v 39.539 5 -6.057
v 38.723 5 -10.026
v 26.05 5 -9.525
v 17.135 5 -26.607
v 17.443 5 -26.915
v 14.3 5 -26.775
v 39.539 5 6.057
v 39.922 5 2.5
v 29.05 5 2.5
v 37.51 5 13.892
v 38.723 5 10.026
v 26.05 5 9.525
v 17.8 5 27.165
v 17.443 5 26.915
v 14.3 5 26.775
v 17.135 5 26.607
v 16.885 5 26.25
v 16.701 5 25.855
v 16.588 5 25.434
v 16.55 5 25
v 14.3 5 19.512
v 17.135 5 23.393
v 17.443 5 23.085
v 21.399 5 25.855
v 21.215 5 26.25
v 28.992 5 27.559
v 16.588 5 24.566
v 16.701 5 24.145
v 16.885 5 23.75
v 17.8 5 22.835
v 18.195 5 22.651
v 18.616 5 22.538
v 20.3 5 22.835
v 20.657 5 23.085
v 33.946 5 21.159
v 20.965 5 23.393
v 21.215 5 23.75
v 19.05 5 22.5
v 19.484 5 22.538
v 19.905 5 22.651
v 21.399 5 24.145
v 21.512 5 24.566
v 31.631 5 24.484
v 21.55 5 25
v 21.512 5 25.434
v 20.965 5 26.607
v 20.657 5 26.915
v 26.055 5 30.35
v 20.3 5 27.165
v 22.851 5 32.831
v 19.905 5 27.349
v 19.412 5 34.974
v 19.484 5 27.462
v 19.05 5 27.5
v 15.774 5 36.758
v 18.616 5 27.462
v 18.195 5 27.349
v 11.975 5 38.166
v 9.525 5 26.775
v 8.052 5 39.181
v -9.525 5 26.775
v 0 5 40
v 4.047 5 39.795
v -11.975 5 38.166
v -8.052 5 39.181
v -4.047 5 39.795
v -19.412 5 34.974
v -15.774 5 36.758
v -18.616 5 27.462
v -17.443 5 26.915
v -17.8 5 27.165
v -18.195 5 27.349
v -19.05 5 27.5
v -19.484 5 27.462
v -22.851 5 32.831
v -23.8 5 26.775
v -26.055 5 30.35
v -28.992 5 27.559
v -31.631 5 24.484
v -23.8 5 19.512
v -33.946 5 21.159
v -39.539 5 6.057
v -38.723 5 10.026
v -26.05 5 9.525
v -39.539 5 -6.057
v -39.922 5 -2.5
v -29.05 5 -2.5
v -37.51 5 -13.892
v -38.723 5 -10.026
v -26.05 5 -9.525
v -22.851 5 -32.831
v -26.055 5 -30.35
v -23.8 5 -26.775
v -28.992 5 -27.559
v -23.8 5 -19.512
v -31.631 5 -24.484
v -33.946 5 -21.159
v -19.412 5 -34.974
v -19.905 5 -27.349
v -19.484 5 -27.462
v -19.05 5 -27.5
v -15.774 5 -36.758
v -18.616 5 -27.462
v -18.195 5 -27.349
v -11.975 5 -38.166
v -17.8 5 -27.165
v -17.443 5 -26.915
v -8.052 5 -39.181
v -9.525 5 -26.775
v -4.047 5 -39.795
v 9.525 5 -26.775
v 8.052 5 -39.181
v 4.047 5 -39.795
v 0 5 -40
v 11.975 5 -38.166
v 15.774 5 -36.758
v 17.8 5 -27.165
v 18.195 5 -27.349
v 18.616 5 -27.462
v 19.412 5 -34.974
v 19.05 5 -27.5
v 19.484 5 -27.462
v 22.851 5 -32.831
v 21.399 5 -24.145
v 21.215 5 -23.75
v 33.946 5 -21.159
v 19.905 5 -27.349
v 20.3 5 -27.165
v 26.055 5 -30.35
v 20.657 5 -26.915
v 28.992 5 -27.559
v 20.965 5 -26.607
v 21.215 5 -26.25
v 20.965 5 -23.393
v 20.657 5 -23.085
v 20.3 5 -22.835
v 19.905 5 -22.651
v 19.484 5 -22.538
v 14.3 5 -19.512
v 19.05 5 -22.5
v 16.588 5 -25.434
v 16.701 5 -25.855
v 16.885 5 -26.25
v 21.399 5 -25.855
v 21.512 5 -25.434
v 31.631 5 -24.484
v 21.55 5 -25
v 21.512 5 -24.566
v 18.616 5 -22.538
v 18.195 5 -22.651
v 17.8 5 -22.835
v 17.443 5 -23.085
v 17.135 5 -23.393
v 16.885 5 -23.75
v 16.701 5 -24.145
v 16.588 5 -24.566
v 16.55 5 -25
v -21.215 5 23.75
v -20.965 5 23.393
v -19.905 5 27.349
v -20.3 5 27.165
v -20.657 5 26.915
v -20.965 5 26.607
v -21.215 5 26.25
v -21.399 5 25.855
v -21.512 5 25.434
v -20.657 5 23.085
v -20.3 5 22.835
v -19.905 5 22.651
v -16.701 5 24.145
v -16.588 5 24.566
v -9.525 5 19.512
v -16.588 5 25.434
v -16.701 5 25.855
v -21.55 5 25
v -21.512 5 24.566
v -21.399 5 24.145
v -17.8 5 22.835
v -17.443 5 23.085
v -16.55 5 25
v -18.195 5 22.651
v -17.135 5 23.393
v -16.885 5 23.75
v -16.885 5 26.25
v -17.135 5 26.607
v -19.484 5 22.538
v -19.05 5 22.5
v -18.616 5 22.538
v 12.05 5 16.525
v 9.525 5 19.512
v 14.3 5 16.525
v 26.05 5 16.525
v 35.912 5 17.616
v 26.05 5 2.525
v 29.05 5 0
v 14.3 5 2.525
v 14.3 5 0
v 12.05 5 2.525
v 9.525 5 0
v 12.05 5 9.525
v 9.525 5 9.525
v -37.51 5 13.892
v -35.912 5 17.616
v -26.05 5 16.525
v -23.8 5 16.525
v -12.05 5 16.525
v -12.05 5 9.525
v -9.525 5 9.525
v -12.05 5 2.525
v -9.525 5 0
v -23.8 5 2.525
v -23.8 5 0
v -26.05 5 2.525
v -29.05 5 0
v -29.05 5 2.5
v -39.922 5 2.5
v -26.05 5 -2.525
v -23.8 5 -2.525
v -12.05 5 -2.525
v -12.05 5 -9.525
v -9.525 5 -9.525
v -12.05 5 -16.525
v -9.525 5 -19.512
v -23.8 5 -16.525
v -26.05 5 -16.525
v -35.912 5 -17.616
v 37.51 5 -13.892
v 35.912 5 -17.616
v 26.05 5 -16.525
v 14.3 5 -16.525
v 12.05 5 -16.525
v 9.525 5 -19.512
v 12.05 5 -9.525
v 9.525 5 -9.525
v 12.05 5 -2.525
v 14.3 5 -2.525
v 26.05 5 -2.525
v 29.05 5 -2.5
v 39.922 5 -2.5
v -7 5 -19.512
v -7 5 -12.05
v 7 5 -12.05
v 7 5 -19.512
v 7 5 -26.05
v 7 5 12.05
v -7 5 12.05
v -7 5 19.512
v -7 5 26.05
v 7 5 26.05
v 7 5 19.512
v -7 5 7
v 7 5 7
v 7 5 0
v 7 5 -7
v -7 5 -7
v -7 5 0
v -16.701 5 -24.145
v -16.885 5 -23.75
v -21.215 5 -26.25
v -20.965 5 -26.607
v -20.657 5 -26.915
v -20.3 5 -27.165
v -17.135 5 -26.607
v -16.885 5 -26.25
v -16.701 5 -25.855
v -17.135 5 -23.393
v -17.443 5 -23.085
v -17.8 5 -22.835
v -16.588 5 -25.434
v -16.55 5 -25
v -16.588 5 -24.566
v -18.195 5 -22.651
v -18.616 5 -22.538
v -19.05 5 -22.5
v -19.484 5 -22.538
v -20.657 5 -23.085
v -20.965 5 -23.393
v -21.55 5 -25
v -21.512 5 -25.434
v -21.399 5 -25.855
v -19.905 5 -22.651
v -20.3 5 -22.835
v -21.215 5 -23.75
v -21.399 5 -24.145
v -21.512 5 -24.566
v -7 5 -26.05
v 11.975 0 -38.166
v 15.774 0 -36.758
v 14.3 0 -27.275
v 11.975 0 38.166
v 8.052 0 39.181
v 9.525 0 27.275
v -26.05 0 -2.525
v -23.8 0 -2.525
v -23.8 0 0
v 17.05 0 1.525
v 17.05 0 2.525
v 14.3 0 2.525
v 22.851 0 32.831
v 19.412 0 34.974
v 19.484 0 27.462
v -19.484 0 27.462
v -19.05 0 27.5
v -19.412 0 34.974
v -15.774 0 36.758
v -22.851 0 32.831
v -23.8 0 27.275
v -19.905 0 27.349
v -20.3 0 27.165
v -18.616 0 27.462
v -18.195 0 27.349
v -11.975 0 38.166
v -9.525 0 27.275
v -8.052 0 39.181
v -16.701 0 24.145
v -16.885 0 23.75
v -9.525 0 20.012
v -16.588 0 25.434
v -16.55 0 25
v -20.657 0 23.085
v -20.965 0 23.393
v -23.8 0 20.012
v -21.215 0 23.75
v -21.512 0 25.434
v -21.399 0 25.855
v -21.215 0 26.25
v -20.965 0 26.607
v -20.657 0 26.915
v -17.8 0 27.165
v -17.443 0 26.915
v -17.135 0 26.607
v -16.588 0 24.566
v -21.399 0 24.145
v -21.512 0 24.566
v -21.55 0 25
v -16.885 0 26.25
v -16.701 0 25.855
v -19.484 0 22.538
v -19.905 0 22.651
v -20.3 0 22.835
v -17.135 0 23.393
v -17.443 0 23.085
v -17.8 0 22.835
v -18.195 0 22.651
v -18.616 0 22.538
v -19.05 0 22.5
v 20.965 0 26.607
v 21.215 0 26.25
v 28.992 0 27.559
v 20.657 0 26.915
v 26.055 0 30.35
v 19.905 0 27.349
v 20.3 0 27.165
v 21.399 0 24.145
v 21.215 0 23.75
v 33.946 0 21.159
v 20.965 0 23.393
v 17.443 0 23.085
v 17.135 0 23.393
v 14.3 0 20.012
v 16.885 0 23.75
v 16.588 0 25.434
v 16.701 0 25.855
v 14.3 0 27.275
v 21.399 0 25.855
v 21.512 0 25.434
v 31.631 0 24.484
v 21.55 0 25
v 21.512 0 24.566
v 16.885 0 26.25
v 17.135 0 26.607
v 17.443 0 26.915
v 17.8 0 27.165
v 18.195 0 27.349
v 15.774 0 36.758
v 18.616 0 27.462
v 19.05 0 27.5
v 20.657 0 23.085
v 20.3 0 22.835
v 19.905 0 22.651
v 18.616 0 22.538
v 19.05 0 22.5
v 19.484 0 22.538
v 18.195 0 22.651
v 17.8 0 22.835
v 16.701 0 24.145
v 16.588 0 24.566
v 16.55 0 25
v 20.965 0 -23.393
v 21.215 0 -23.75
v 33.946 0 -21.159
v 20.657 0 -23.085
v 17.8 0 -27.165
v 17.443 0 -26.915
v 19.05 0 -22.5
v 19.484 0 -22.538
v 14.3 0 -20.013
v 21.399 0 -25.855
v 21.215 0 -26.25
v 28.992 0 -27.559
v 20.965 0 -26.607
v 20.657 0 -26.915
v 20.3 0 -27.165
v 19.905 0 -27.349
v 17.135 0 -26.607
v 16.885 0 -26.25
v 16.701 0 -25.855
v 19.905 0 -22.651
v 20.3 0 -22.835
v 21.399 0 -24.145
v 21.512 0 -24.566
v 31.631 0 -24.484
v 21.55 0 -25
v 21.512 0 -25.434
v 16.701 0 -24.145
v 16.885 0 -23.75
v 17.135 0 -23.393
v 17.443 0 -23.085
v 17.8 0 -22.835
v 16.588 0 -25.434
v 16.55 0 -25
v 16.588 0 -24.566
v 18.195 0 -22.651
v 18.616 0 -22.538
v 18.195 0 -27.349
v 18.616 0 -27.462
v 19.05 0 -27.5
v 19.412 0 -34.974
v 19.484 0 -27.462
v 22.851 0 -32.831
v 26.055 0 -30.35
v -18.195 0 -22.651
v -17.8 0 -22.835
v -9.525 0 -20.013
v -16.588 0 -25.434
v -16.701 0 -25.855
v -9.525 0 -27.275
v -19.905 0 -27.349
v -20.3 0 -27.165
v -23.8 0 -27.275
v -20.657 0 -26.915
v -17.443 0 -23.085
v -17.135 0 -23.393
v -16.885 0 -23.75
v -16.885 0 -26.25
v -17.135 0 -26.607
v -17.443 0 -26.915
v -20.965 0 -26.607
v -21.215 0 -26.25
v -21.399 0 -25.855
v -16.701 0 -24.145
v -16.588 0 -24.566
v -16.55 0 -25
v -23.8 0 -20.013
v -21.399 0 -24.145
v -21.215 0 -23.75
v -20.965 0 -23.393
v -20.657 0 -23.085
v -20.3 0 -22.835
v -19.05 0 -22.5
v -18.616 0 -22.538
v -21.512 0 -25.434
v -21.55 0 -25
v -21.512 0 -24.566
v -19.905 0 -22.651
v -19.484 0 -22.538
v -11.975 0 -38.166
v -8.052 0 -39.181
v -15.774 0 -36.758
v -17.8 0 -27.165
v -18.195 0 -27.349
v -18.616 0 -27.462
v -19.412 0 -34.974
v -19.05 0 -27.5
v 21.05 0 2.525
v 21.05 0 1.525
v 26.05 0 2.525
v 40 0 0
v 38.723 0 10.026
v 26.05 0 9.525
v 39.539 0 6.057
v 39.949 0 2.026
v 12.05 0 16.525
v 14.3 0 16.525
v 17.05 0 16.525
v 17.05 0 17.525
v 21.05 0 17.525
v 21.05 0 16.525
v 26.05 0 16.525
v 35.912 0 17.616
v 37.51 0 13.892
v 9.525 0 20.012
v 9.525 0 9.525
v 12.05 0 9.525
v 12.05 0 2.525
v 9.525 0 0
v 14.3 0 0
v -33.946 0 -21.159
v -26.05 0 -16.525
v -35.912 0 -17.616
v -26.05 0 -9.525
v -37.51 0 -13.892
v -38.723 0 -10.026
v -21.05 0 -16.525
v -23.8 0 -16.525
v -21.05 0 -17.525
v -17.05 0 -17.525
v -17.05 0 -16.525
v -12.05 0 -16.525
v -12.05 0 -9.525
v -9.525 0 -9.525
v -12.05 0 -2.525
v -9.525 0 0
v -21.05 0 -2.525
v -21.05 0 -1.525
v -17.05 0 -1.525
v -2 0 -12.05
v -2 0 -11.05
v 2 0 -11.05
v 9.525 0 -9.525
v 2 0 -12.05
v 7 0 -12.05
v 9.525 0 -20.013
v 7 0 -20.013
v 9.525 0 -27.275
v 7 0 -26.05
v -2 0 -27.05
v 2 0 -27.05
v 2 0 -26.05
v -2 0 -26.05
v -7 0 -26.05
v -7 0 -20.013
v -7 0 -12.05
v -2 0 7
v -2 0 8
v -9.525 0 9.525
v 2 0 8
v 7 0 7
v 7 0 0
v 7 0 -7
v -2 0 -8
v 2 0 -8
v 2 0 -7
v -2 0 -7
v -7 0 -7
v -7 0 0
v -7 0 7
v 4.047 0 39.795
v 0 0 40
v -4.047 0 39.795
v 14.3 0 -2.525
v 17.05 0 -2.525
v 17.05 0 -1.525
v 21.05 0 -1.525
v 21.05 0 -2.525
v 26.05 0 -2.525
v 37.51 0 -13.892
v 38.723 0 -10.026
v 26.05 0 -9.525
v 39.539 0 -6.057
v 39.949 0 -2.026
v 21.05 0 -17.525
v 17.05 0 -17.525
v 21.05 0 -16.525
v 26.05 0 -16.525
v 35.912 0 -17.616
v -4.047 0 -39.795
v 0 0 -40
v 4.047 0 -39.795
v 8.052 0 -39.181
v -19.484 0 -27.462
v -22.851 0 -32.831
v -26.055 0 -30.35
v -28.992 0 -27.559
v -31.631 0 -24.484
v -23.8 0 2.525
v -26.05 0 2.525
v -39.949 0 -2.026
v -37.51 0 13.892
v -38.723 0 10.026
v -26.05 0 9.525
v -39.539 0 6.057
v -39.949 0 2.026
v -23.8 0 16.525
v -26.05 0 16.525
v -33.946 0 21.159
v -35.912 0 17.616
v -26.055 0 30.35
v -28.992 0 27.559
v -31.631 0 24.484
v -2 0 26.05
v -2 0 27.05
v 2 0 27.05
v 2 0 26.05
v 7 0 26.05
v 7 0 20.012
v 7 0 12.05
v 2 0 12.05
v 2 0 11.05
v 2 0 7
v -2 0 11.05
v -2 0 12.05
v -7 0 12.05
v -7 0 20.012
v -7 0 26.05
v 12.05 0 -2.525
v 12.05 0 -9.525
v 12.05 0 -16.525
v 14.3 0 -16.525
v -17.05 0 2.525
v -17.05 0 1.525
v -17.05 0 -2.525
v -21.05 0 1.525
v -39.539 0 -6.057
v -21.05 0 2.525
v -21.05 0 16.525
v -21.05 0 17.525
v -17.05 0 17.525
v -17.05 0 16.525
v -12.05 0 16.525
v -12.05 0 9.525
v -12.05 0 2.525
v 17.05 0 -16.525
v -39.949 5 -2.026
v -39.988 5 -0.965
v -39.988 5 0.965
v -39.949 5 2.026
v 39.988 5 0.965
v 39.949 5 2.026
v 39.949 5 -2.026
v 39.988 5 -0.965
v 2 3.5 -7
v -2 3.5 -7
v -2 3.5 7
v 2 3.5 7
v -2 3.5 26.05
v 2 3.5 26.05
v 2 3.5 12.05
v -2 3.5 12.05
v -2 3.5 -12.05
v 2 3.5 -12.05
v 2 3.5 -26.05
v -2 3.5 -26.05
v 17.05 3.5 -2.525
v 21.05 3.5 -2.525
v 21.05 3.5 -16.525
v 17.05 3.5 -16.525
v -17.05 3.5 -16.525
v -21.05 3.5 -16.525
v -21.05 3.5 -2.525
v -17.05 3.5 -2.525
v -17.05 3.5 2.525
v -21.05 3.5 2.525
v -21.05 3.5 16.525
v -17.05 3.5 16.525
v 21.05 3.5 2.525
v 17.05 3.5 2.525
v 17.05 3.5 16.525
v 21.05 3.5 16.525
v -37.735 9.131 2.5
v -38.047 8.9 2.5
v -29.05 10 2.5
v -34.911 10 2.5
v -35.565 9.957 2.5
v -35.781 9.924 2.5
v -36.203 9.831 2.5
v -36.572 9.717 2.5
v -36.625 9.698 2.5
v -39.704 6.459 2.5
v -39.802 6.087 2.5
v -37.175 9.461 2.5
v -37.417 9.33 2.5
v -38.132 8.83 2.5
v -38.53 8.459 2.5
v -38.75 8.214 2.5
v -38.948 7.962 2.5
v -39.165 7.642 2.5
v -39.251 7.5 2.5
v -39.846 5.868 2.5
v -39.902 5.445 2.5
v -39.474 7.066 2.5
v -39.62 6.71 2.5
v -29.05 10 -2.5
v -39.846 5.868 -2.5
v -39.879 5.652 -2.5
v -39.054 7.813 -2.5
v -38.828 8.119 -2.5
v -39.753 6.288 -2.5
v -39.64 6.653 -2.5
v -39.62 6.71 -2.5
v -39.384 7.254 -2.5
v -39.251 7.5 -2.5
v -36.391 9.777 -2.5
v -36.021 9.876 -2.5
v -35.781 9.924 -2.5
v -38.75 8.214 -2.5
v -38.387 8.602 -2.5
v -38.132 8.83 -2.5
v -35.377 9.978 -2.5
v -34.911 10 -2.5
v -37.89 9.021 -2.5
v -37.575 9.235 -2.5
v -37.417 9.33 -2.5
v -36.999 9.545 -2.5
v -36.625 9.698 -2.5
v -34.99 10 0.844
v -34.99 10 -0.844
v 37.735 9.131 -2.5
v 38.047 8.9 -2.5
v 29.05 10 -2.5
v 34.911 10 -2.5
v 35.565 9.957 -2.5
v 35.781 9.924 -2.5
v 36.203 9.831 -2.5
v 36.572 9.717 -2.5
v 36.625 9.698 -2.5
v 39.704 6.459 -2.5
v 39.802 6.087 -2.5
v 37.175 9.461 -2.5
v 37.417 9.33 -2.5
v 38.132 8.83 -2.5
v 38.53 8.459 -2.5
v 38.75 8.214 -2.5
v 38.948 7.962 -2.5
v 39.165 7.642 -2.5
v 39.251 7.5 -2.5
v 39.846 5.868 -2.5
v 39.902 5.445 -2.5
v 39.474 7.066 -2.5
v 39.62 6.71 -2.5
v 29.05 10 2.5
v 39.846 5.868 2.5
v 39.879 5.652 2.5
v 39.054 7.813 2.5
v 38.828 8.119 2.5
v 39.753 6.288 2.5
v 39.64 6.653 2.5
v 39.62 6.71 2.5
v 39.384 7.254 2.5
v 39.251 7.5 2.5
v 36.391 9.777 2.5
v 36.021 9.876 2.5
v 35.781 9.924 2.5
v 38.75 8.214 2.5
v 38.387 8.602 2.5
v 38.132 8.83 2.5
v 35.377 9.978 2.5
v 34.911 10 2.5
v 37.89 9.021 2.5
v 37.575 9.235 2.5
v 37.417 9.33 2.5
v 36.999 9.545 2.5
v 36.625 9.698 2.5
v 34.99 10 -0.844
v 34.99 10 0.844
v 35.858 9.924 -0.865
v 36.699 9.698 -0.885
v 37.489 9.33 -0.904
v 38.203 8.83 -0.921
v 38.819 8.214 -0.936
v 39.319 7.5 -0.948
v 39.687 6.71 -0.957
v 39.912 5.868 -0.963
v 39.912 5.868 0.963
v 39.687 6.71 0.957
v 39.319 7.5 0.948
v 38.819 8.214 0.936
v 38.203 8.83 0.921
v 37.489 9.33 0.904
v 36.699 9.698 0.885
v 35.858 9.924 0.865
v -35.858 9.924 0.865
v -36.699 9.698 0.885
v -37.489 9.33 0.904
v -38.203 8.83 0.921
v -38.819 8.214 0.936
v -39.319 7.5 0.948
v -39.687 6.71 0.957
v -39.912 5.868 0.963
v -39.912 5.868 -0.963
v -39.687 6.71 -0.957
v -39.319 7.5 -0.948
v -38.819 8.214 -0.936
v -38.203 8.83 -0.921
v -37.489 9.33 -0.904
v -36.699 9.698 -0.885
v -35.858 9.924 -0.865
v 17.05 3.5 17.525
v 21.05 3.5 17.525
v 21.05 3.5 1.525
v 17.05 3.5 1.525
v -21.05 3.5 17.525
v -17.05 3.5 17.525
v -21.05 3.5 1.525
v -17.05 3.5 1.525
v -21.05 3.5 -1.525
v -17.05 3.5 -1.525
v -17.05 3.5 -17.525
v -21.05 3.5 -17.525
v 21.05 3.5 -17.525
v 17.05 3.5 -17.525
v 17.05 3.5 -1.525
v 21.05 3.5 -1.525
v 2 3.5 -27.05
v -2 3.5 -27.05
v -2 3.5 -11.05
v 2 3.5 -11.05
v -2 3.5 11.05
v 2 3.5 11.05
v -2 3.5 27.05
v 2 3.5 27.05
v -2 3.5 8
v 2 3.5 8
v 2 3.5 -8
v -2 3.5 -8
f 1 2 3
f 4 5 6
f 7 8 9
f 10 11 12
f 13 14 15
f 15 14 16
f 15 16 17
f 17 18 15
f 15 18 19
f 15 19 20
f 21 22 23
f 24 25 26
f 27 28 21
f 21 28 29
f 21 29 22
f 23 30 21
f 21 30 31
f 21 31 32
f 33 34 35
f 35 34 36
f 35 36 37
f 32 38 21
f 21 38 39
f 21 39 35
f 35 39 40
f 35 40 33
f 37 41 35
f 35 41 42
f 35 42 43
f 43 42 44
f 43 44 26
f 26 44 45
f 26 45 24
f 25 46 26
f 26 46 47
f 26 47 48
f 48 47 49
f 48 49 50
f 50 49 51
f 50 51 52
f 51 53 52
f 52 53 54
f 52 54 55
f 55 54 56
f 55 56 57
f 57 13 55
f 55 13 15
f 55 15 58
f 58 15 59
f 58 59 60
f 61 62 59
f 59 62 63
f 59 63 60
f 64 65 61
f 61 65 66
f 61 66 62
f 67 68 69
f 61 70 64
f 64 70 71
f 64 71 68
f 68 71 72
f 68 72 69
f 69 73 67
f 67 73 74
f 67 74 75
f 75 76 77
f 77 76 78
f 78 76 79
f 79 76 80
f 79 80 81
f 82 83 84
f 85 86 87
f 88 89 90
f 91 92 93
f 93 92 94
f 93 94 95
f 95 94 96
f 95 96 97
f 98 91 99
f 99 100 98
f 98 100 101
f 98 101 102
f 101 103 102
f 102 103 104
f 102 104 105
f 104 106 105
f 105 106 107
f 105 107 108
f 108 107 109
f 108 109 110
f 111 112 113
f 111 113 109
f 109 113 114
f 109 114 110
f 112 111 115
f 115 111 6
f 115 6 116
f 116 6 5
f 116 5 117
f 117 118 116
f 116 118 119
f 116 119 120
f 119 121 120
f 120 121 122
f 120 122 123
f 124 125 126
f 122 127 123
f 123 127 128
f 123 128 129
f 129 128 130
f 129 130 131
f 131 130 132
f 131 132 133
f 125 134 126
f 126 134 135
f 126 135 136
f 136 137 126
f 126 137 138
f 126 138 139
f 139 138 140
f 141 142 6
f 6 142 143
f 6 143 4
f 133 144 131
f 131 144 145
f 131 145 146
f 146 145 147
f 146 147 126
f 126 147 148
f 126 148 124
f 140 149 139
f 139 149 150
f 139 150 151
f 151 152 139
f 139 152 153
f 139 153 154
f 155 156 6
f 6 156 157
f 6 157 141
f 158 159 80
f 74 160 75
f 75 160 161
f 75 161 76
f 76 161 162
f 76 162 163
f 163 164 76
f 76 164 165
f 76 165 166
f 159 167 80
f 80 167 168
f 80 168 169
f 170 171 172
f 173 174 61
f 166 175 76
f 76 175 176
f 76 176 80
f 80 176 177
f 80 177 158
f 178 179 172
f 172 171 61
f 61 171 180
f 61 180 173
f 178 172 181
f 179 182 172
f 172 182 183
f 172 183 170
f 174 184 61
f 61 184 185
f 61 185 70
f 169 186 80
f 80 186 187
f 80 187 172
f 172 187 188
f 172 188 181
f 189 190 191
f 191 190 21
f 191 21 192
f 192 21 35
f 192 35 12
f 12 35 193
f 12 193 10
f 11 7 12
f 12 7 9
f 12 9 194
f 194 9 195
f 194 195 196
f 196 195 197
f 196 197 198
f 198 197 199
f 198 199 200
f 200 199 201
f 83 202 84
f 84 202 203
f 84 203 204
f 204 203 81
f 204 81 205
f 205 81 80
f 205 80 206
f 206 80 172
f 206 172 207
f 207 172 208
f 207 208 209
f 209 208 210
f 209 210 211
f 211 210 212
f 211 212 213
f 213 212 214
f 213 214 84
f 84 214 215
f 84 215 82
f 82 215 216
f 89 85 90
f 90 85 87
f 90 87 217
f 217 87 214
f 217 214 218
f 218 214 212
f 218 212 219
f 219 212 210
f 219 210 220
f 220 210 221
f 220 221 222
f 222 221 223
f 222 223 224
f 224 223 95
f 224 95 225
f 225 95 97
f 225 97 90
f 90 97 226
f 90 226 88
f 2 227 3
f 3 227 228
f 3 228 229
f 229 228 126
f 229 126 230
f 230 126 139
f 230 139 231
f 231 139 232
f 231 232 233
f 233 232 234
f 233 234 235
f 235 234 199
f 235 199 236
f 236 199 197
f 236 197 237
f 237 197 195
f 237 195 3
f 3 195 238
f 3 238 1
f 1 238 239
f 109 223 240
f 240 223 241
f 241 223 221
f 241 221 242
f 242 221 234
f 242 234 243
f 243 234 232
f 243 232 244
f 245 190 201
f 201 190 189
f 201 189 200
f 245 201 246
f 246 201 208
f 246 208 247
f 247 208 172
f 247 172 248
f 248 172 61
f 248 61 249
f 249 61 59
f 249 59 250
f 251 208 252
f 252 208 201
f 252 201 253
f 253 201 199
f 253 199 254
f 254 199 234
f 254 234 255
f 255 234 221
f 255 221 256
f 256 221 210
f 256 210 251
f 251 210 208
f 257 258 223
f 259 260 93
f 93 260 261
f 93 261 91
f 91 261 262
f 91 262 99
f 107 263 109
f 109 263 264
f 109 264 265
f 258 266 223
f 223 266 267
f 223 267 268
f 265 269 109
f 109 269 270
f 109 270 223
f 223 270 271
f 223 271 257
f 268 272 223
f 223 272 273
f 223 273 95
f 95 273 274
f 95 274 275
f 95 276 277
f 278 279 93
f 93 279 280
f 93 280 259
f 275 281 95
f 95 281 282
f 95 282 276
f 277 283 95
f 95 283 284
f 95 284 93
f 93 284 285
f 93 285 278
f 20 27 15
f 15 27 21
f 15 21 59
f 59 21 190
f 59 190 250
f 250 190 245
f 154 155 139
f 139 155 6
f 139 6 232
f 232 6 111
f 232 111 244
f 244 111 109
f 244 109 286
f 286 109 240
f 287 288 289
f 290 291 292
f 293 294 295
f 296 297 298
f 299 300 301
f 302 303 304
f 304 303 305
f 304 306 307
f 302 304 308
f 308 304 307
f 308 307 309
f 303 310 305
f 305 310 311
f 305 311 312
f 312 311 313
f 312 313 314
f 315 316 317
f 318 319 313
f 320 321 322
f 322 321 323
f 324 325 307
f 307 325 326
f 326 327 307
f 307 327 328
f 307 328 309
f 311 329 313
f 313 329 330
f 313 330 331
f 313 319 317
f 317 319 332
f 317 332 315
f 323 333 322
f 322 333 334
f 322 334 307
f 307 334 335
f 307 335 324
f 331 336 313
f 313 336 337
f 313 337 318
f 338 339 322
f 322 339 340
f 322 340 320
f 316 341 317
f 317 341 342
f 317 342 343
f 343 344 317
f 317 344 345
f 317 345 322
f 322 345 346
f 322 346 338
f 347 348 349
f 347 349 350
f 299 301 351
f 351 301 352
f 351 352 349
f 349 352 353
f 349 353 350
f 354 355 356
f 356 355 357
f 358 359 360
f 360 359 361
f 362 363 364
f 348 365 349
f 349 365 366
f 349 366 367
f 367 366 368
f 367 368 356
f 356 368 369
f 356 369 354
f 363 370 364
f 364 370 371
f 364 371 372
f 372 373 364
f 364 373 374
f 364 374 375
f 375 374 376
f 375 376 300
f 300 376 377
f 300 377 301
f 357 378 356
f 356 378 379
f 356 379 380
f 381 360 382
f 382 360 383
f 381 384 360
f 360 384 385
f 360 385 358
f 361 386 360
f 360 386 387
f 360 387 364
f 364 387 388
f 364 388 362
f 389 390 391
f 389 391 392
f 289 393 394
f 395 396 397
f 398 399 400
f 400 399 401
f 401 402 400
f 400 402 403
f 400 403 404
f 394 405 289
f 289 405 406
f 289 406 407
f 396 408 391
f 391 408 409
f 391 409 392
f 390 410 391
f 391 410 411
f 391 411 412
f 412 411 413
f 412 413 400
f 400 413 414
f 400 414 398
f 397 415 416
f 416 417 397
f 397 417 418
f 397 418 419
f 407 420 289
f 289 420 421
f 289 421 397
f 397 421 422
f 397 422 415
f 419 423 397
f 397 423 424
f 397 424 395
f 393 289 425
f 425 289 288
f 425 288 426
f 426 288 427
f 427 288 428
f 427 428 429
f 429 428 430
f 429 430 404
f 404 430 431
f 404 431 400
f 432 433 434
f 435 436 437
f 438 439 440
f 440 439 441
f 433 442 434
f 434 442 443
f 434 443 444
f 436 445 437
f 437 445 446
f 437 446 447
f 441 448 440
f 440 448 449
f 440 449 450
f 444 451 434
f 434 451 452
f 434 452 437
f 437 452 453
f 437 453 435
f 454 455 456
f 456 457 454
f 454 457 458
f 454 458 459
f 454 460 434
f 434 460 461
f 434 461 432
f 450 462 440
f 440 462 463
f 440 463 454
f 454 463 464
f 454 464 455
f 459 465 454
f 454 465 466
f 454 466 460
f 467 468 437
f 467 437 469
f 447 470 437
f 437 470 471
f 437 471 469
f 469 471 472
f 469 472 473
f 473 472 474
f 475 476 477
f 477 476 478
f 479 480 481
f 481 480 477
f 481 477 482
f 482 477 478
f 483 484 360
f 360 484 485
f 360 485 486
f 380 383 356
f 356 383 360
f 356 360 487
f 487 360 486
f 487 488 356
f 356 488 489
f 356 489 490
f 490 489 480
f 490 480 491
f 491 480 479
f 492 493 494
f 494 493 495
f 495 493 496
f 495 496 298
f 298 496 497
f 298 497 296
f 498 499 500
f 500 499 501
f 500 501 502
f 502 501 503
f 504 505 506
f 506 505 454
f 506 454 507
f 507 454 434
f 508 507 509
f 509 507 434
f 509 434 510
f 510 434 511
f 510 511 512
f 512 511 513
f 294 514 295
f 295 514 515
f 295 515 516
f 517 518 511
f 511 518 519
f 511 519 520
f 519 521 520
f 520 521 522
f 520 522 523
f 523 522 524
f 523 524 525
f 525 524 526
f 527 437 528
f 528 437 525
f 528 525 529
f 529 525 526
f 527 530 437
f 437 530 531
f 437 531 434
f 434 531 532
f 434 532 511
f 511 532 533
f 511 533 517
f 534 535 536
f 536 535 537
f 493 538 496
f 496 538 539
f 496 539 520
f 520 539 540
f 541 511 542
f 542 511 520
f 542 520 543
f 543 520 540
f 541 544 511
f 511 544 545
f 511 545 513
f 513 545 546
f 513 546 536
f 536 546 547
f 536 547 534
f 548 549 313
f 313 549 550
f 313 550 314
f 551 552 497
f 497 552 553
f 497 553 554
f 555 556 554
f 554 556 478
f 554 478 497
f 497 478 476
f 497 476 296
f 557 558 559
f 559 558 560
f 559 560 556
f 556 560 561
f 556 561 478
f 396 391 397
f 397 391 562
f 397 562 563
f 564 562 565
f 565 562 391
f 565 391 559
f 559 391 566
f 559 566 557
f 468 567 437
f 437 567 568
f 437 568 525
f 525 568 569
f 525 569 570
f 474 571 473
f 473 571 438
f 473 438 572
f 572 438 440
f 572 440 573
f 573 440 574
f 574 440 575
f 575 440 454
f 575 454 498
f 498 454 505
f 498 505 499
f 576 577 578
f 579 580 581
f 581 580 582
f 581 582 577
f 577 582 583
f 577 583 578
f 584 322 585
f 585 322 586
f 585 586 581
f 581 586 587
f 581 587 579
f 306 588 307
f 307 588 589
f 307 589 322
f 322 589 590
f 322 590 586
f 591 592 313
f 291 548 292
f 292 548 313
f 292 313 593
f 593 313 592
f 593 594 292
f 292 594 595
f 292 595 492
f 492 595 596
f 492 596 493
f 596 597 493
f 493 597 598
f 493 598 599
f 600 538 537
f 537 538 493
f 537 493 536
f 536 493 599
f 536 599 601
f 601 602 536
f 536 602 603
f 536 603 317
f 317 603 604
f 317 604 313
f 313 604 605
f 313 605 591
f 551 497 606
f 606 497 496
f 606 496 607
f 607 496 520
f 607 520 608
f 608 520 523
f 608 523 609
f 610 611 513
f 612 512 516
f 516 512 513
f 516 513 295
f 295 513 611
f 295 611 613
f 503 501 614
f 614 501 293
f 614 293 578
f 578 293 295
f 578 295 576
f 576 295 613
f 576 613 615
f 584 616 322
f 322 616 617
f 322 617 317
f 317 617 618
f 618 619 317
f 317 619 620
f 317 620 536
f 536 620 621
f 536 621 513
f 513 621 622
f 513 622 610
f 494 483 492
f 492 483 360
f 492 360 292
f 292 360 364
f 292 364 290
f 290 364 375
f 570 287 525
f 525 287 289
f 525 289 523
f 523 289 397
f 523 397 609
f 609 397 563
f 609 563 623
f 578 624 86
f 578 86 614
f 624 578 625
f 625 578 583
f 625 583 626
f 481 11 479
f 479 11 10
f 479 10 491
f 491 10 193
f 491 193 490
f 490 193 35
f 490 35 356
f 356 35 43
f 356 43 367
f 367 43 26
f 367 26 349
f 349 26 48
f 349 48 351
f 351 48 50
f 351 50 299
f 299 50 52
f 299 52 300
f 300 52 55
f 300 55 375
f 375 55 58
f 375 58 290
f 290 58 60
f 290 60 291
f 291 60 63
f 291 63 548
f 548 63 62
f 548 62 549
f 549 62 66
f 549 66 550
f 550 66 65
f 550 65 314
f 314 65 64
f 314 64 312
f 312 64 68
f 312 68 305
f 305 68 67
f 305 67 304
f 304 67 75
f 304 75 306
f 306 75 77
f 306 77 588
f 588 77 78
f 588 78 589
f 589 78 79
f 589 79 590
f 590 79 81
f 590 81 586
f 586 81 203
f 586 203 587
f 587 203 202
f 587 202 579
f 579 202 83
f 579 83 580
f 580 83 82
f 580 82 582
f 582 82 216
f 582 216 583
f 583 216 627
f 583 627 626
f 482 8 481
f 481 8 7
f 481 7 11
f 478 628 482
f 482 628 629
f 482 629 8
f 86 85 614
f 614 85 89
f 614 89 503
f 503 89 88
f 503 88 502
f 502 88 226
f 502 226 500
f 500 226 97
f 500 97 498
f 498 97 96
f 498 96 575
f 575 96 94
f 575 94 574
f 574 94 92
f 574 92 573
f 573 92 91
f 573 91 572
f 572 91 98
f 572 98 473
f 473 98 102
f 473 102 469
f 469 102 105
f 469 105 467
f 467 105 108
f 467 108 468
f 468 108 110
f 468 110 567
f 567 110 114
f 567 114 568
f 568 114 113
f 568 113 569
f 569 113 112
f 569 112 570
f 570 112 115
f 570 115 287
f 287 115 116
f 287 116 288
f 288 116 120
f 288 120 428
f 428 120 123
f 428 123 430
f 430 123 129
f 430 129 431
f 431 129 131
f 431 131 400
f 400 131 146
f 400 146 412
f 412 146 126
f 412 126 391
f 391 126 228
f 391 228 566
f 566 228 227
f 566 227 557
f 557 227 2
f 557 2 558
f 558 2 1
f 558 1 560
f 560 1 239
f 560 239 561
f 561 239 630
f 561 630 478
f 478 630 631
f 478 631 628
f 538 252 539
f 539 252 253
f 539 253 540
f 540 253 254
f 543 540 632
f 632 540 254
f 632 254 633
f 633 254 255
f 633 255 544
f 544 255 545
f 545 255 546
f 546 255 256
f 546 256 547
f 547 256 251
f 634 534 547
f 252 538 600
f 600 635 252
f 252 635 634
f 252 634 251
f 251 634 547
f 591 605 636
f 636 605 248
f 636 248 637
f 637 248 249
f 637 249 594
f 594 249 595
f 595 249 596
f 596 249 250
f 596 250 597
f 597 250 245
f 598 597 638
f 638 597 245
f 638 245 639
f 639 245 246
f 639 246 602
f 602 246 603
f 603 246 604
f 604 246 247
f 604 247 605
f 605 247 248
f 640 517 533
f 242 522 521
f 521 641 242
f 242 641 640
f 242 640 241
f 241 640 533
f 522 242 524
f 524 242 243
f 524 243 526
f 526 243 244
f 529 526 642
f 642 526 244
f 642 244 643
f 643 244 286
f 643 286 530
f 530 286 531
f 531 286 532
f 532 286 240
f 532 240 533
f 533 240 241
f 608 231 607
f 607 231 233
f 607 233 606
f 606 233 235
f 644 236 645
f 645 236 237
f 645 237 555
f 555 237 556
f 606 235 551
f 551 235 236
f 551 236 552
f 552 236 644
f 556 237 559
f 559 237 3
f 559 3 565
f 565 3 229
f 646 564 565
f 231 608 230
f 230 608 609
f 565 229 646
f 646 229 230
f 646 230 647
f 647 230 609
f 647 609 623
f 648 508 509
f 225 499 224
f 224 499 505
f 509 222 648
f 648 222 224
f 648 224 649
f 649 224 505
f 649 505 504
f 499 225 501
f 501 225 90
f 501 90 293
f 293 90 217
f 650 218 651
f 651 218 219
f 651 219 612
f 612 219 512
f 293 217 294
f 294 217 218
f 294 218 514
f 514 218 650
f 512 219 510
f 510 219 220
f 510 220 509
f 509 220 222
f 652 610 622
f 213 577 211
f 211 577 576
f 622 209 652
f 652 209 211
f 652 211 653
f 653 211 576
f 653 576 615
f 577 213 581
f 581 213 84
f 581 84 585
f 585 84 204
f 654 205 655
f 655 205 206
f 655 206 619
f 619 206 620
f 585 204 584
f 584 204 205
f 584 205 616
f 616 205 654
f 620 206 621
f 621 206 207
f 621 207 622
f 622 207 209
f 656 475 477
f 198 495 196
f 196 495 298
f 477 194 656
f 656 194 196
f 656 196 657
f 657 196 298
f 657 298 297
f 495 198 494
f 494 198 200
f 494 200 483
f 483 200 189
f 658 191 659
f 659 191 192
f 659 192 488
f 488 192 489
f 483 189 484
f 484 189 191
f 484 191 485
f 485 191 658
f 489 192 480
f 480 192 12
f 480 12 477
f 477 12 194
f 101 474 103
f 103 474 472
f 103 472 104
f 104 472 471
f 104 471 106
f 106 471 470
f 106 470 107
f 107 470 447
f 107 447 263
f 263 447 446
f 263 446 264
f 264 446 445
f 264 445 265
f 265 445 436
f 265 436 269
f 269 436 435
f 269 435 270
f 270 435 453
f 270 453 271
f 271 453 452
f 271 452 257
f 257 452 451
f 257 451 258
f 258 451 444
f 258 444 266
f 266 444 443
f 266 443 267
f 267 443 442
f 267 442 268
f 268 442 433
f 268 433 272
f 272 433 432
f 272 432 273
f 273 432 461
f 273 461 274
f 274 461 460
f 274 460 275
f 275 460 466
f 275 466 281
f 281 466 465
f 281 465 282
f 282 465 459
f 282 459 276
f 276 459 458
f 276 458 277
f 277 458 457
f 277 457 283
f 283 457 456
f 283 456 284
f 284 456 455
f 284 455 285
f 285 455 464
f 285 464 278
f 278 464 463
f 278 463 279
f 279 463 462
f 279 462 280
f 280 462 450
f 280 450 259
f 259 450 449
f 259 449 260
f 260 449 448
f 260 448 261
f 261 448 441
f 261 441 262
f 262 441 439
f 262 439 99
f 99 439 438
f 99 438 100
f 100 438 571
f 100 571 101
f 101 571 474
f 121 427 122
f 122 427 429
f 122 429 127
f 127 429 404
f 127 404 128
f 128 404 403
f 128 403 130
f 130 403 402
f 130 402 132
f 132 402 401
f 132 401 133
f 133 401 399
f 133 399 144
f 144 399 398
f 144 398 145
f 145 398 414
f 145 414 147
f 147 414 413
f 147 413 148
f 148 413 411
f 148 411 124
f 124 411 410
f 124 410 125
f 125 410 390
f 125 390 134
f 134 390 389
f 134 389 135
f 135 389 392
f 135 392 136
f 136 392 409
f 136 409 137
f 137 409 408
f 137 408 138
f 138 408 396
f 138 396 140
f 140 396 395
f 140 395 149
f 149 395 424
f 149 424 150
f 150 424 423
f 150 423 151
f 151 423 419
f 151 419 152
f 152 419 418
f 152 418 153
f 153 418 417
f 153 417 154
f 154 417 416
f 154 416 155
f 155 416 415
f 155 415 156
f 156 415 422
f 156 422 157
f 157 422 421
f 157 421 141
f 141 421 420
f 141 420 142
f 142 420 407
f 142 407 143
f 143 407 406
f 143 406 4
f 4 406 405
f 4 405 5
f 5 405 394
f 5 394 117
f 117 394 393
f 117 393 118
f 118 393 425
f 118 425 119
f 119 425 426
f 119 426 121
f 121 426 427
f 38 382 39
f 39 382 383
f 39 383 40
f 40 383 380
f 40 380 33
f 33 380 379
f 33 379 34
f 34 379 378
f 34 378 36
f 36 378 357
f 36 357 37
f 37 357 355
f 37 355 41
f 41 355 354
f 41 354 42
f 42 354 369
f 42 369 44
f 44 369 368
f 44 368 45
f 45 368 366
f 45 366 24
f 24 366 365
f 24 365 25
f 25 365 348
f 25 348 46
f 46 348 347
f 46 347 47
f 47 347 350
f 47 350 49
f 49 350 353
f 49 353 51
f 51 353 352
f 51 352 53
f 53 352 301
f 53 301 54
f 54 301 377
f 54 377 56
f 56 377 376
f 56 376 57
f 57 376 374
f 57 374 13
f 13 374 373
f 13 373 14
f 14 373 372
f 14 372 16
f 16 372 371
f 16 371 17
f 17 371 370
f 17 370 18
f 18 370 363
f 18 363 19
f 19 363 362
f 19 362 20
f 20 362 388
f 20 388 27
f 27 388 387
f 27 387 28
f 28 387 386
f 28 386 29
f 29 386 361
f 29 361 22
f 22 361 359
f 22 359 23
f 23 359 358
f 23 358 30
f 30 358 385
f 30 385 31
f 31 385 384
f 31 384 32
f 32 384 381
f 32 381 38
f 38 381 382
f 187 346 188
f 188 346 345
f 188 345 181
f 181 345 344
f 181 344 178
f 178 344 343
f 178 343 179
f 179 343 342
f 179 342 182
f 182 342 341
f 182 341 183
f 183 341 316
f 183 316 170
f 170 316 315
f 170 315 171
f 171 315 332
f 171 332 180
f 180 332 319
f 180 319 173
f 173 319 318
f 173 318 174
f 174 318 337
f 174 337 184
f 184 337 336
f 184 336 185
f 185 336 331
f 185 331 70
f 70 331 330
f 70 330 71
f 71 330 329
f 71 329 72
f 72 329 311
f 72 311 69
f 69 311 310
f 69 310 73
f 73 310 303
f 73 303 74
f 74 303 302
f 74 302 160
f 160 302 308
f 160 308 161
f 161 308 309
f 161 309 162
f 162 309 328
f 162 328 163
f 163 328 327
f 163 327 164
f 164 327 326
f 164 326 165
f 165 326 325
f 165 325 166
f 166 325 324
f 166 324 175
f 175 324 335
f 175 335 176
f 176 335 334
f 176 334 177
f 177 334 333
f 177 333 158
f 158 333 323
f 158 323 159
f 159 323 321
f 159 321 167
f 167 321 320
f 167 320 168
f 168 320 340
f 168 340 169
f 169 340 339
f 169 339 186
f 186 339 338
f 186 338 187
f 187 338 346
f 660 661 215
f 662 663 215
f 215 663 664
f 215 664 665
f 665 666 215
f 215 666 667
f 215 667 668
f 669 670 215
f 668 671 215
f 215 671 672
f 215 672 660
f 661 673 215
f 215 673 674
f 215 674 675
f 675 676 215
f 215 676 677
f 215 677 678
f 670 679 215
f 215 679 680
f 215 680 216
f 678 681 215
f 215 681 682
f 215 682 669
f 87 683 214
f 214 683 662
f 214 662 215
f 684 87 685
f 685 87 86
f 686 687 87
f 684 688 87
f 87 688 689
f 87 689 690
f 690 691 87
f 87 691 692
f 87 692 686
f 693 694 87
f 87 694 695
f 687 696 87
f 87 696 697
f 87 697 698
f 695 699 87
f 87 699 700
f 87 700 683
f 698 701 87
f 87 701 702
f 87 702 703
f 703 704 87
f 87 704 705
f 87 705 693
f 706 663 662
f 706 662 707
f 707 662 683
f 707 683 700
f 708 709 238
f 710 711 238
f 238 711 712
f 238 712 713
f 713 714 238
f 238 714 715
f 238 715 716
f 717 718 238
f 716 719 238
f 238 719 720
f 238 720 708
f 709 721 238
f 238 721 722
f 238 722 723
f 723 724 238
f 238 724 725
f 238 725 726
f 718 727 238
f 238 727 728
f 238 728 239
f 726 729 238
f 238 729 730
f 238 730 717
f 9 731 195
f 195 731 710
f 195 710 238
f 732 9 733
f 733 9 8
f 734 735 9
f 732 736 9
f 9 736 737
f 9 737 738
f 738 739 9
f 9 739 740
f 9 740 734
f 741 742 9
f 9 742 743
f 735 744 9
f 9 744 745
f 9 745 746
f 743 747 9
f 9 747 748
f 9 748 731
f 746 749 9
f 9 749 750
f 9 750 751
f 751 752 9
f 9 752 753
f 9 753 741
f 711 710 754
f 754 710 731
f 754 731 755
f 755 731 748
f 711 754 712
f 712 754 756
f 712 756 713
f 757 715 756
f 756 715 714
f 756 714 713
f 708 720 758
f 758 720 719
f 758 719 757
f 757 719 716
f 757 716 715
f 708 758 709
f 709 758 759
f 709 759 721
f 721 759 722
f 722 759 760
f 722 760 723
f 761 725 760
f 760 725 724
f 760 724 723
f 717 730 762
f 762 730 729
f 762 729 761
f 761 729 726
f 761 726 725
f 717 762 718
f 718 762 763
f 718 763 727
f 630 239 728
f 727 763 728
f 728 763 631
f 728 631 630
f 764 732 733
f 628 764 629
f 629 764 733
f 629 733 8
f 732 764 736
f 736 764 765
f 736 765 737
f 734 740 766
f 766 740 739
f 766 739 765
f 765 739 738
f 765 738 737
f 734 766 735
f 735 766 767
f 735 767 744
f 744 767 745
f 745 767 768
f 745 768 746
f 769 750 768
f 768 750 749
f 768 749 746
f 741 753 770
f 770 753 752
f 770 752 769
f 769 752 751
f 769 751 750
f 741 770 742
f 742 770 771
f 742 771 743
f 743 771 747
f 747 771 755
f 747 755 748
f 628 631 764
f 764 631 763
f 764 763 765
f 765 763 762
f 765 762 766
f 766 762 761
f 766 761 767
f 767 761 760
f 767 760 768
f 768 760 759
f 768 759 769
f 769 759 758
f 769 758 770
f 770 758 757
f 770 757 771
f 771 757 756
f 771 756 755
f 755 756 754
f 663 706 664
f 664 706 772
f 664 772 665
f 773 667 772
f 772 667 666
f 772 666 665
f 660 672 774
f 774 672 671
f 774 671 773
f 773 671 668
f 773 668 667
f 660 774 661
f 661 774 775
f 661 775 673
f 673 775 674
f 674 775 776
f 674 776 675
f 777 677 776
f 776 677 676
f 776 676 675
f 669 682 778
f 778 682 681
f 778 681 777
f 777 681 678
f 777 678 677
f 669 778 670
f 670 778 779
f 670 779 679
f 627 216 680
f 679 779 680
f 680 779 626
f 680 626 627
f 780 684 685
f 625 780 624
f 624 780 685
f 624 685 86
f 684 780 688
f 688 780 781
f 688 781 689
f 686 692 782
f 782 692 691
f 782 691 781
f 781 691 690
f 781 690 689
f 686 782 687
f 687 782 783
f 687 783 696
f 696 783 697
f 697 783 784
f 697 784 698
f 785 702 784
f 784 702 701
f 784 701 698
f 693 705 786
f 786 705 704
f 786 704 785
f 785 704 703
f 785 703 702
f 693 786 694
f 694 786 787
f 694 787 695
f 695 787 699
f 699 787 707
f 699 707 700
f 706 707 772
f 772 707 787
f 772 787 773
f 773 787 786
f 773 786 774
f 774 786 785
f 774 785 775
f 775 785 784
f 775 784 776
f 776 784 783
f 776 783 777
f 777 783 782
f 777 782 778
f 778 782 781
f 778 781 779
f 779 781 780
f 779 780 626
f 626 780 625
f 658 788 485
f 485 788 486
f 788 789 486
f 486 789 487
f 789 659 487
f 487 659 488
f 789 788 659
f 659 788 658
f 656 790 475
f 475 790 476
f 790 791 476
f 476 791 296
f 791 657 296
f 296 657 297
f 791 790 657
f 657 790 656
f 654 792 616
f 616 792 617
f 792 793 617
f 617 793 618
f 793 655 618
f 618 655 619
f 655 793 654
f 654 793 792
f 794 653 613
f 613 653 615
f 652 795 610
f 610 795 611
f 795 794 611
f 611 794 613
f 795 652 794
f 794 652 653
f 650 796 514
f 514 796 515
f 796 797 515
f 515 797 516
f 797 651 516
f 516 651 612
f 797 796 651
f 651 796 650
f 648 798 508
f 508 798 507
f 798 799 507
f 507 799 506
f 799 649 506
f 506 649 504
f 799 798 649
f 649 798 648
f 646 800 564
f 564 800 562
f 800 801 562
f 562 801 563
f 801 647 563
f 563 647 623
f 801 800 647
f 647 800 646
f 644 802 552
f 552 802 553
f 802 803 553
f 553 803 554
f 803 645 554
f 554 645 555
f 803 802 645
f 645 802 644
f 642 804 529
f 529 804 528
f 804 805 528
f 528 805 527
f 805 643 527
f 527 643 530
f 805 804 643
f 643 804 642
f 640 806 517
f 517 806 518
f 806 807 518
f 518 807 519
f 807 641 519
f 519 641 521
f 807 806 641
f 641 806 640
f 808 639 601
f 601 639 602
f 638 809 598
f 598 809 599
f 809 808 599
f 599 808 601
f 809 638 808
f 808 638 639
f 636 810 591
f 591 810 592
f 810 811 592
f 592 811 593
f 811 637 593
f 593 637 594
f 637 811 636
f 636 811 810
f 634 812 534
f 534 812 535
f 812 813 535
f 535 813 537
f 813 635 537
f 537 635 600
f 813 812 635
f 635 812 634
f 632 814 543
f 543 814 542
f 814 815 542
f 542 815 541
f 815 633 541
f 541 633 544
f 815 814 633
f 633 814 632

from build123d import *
from OCP.BRepAlgoAPI import BRepAlgoAPI_Cut
from OCP.TopTools import TopTools_ListOfShape

# Parameters (mm, degrees)
SKETCH1_R           = 40
SKETCH1_R_2         = 2.5
SKETCH1_W           = 14
SKETCH1_H           = 14
BOSS_EXTRUDE1_DEPTH = 5
BOSS_EXTRUDE2_DEPTH = 5
FILLET1_R           = 5
SKETCH3_W           = 4
SKETCH3_H           = 1
CUT_EXTRUDE1_DEPTH  = 3.5


with BuildPart() as part:
    # Sketch1 → Boss-Extrude1 (new body)
    with BuildSketch(Plane(origin=(0, 0, 0), x_dir=(1, 0, 0), z_dir=(0, 1, 0))):
        with Locations(Location((0, 0, 0), (0, 0, 270))):
            Circle(SKETCH1_R)
        with Locations(Location((-19.05, 25, 0), (0, 0, 270))):
            Circle(SKETCH1_R_2, mode=Mode.SUBTRACT)
        with Locations(Location((19.05, 25, 0), (0, 0, 270))):
            Circle(SKETCH1_R_2, mode=Mode.SUBTRACT)
        with Locations(Location((19.05, -25, 0), (0, 0, 270))):
            Circle(SKETCH1_R_2, mode=Mode.SUBTRACT)
        with Locations(Location((-19.05, -25, 0), (0, 0, 270))):
            Circle(SKETCH1_R_2, mode=Mode.SUBTRACT)
        with Locations((0, 19.05)):
            Rectangle(SKETCH1_W, SKETCH1_H, mode=Mode.SUBTRACT)
        Rectangle(SKETCH1_W, SKETCH1_H, mode=Mode.SUBTRACT)
        with Locations((0, -19.05)):
            Rectangle(SKETCH1_W, SKETCH1_H, mode=Mode.SUBTRACT)
        with Locations((-19.05, 9.525)):
            Rectangle(SKETCH1_W, SKETCH1_H, mode=Mode.SUBTRACT)
        with Locations((19.05, 9.525)):
            Rectangle(SKETCH1_W, SKETCH1_H, mode=Mode.SUBTRACT)
        with Locations((-19.04999963, -9.524995038)):
            Rectangle(SKETCH1_W, SKETCH1_H, mode=Mode.SUBTRACT)
        with Locations((19.05000037, -9.524995038)):
            Rectangle(SKETCH1_W, SKETCH1_H, mode=Mode.SUBTRACT)
    extrude(amount=BOSS_EXTRUDE1_DEPTH)

    # Sketch2 → Boss-Extrude2 (add)
    with BuildSketch(Plane(origin=(0, 5, 0), x_dir=(1, 0, 0), z_dir=(0, 1, 0))):
        with BuildLine():
            Line((-39.921798557, 2.5), (-29.05, 2.5))
            Line((-29.05, 2.5), (-29.05, -2.5))
            Line((-29.05, -2.5), (-39.921798557, -2.5))
            ThreePointArc((-39.921798557, -2.5), (-40, 0), (-39.921798557, 2.5))
        make_face()
        with BuildLine():
            Line((29.05, 2.5), (29.05, -2.5))
            Line((29.05, -2.5), (39.921798557, -2.5))
            ThreePointArc((39.921798557, -2.5), (40, 0), (39.921798557, 2.5))
            Line((39.921798557, 2.5), (29.05, 2.5))
        make_face()
    extrude(amount=BOSS_EXTRUDE2_DEPTH)

    # Fillet1
    fillet1_edges = [part.edges().sort_by_distance(p)[0] for p in [
        (40, 10, 0),
        (-40, 10, 0),
    ]]
    fillet(fillet1_edges, radius=FILLET1_R - 0.0001)  # a hair under: the kernel refuses the full size


with BuildPart() as cut_extrude1_tool:
    # Sketch3 → Cut-Extrude1 (new body)
    with BuildSketch(Plane.XZ):
        with Locations((0, 26.55)):
            Rectangle(SKETCH3_W, SKETCH3_H)
        with Locations((0, 11.55)):
            Rectangle(SKETCH3_W, SKETCH3_H)
        with Locations((0, 7.5)):
            Rectangle(SKETCH3_W, SKETCH3_H)
        with Locations((0, -7.5)):
            Rectangle(SKETCH3_W, SKETCH3_H)
        with Locations((0, -11.55)):
            Rectangle(SKETCH3_W, SKETCH3_H)
        with Locations((0, -26.55)):
            Rectangle(SKETCH3_W, SKETCH3_H)
        with Locations((-19.04999963, 17.024995038)):
            Rectangle(SKETCH3_W, SKETCH3_H)
        with Locations((-19.04999963, 2.024995038)):
            Rectangle(SKETCH3_W, SKETCH3_H)
        with Locations((19.05000037, 2.024995038)):
            Rectangle(SKETCH3_W, SKETCH3_H)
        with Locations((19.05000037, 17.024995038)):
            Rectangle(SKETCH3_W, SKETCH3_H)
        with Locations((19.05000037, -17.025004962)):
            Rectangle(SKETCH3_W, SKETCH3_H)
        with Locations((19.05000037, -2.025004962)):
            Rectangle(SKETCH3_W, SKETCH3_H)
        with Locations((-19.04999963, -17.025004962)):
            Rectangle(SKETCH3_W, SKETCH3_H)
        with Locations((-19.04999963, -2.025004962)):
            Rectangle(SKETCH3_W, SKETCH3_H)
    extrude(amount=-CUT_EXTRUDE1_DEPTH)


with BuildPart() as part_1:
    add(part.part)

    # Cut-Extrude1: cut by cut_extrude1_tool, with a tolerance
    cut_extrude1_stock = TopTools_ListOfShape()
    cut_extrude1_stock.Append(part_1.part.wrapped)
    cut_extrude1_tools = TopTools_ListOfShape()
    cut_extrude1_tools.Append(cut_extrude1_tool.part.wrapped)
    cut_extrude1_cut = BRepAlgoAPI_Cut()
    cut_extrude1_cut.SetArguments(cut_extrude1_stock)
    cut_extrude1_cut.SetTools(cut_extrude1_tools)
    cut_extrude1_cut.SetFuzzyValue(0.00001)
    cut_extrude1_cut.Build()
    add(Compound.cast(cut_extrude1_cut.Shape()).solids(), mode=Mode.REPLACE)


solid = part_1.part
